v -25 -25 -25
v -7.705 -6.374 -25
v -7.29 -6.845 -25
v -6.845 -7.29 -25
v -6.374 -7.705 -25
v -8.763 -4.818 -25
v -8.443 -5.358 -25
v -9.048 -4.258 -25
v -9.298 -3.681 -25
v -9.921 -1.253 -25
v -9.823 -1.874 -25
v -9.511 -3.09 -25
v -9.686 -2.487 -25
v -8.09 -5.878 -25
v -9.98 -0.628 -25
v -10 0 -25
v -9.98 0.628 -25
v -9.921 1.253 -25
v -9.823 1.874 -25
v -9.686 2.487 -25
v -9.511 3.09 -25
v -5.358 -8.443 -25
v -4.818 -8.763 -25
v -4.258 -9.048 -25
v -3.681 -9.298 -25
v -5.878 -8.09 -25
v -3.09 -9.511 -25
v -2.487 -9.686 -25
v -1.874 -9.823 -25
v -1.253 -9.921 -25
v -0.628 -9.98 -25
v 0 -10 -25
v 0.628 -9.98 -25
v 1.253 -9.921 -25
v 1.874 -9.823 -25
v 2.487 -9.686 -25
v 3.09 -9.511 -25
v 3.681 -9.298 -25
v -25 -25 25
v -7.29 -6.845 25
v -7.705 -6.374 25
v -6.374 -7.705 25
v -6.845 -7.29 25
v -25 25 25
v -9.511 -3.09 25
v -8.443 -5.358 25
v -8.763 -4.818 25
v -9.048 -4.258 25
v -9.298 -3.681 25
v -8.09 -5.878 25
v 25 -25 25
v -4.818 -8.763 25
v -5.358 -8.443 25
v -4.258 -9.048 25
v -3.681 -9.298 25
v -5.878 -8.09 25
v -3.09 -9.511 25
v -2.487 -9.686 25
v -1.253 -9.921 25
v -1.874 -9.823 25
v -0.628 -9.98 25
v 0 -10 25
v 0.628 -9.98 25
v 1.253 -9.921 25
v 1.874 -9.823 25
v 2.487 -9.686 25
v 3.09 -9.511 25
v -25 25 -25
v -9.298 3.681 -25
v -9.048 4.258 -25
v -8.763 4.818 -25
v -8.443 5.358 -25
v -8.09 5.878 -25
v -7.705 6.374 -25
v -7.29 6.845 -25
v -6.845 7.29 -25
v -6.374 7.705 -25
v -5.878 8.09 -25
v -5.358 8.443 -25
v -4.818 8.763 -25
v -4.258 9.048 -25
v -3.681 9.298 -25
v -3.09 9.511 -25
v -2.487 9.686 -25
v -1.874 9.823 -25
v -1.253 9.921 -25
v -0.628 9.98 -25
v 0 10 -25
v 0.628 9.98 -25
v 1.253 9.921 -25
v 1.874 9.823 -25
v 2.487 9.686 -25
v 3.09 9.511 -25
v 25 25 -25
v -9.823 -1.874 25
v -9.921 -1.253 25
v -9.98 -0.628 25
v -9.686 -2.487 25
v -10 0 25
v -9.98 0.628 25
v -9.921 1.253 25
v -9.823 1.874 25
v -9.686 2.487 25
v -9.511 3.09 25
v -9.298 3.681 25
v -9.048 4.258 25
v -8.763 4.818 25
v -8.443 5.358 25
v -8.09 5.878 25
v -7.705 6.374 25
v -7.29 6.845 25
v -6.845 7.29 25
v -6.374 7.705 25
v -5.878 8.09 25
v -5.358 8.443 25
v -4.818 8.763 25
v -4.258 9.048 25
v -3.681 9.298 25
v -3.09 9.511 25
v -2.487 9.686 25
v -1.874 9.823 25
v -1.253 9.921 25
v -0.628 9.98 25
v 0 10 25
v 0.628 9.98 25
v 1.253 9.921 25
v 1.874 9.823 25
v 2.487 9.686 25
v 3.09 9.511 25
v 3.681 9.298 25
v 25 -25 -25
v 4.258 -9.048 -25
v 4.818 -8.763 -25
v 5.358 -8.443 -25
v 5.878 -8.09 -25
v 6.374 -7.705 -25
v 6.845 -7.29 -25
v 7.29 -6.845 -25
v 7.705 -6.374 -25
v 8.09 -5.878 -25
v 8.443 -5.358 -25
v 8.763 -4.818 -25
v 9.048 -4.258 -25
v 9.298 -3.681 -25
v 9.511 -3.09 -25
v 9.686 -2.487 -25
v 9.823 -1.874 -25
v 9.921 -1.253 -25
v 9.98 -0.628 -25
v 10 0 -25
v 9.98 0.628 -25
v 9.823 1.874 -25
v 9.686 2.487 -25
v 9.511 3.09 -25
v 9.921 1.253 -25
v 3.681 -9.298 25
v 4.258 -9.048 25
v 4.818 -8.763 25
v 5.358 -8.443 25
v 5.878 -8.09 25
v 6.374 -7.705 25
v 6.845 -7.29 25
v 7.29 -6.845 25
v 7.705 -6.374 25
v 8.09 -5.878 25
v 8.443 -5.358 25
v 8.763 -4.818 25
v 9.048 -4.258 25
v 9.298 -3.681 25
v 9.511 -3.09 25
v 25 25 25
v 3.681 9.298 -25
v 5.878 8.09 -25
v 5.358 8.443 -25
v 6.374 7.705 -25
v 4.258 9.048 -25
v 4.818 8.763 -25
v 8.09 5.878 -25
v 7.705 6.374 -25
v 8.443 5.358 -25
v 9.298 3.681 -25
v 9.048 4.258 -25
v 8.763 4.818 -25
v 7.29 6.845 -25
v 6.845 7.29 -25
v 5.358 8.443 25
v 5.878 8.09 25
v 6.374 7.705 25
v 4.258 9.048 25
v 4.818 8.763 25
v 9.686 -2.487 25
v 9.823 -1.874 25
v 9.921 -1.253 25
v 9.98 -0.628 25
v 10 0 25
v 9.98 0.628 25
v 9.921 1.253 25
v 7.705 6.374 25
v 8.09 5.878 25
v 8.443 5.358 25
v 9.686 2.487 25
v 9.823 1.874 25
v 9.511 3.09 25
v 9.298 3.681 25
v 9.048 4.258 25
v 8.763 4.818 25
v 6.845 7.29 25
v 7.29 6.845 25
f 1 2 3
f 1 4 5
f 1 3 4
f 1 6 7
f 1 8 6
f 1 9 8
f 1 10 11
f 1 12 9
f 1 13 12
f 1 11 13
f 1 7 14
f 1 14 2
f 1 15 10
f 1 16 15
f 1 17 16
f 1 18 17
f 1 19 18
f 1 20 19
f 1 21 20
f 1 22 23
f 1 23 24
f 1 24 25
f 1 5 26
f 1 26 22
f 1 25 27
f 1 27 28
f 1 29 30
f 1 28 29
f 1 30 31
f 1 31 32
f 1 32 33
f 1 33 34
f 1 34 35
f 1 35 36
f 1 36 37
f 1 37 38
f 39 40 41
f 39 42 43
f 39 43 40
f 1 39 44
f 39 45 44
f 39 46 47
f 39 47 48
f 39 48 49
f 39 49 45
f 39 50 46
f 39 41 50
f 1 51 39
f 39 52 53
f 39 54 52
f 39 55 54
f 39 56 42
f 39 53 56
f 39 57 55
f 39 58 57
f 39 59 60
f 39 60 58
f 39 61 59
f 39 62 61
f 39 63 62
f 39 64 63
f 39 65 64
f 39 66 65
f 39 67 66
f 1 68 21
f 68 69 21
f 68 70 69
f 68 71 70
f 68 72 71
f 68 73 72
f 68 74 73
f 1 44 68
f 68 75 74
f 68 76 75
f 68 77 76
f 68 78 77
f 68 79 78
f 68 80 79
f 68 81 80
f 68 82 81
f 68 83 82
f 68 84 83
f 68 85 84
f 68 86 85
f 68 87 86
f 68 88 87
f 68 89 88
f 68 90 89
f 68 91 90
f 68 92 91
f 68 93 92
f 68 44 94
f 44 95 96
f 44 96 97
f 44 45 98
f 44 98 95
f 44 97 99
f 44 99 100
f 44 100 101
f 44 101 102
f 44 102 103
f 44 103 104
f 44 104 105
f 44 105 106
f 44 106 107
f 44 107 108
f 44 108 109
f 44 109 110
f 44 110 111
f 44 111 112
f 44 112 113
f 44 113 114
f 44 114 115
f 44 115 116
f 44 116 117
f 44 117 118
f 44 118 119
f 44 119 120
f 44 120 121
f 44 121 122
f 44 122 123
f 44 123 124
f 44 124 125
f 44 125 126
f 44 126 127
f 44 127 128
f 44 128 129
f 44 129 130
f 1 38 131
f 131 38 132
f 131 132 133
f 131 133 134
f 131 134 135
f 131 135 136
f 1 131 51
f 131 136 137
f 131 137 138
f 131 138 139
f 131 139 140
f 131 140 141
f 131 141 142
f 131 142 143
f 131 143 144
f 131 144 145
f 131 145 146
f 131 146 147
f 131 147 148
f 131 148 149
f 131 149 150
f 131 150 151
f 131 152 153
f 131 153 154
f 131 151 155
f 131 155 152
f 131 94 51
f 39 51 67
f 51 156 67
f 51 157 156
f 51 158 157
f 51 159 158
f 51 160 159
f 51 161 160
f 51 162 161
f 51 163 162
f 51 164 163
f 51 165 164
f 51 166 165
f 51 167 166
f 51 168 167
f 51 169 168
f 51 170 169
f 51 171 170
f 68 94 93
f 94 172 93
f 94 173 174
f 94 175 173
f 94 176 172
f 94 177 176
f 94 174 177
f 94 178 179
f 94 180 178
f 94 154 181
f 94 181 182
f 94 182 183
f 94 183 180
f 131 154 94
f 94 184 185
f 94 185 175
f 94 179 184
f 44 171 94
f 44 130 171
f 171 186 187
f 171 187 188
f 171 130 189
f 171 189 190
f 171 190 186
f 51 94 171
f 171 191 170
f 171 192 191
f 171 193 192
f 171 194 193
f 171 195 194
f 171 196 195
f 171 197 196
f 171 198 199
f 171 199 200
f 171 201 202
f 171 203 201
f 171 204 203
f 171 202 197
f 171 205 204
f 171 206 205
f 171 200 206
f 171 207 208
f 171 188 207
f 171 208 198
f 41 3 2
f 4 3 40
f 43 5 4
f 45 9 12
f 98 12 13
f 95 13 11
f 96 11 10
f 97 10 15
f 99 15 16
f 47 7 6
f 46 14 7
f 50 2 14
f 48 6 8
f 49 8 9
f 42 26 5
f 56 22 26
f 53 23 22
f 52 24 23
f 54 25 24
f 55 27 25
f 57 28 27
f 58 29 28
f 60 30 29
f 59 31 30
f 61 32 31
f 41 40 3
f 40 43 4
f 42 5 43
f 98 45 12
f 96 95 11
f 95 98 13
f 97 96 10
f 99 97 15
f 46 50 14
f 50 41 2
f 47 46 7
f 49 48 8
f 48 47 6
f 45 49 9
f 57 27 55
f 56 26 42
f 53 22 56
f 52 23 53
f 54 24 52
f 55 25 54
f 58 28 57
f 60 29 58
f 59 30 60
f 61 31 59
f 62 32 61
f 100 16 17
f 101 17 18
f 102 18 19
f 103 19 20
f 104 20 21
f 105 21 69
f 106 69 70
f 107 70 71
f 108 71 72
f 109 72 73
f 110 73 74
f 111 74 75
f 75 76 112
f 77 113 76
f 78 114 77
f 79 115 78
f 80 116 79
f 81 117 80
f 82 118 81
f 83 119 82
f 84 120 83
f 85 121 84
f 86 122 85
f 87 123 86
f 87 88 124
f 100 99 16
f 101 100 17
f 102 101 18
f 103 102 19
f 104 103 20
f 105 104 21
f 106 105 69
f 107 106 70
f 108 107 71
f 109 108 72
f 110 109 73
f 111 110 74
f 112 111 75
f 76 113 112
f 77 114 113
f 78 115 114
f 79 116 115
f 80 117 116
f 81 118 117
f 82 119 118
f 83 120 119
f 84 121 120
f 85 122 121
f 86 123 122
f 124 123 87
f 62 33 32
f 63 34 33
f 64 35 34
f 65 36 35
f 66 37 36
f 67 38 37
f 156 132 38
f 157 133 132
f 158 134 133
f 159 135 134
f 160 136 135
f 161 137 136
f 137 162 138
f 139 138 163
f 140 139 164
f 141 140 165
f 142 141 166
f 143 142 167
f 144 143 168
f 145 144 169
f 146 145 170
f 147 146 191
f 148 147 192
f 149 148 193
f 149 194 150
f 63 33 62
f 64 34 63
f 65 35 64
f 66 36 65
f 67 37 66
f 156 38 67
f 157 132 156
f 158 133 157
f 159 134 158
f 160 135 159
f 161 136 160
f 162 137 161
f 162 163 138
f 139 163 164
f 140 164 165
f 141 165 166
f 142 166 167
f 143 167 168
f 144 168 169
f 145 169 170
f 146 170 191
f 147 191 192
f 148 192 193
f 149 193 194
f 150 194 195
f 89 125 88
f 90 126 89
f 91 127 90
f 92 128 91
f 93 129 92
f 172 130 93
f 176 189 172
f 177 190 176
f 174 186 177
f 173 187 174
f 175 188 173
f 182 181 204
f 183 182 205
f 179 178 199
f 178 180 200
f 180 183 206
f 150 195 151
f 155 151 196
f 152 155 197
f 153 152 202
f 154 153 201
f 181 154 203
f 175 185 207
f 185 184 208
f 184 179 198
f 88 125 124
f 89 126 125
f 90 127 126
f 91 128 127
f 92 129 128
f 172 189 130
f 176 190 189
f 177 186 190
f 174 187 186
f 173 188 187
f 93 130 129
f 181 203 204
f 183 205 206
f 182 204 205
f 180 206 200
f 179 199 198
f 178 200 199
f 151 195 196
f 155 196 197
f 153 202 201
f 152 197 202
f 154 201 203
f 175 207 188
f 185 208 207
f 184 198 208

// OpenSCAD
difference() {
    cube(50, center = true);
    cylinder(h = 60, d = 20, center = true, $fn = 100);
}
